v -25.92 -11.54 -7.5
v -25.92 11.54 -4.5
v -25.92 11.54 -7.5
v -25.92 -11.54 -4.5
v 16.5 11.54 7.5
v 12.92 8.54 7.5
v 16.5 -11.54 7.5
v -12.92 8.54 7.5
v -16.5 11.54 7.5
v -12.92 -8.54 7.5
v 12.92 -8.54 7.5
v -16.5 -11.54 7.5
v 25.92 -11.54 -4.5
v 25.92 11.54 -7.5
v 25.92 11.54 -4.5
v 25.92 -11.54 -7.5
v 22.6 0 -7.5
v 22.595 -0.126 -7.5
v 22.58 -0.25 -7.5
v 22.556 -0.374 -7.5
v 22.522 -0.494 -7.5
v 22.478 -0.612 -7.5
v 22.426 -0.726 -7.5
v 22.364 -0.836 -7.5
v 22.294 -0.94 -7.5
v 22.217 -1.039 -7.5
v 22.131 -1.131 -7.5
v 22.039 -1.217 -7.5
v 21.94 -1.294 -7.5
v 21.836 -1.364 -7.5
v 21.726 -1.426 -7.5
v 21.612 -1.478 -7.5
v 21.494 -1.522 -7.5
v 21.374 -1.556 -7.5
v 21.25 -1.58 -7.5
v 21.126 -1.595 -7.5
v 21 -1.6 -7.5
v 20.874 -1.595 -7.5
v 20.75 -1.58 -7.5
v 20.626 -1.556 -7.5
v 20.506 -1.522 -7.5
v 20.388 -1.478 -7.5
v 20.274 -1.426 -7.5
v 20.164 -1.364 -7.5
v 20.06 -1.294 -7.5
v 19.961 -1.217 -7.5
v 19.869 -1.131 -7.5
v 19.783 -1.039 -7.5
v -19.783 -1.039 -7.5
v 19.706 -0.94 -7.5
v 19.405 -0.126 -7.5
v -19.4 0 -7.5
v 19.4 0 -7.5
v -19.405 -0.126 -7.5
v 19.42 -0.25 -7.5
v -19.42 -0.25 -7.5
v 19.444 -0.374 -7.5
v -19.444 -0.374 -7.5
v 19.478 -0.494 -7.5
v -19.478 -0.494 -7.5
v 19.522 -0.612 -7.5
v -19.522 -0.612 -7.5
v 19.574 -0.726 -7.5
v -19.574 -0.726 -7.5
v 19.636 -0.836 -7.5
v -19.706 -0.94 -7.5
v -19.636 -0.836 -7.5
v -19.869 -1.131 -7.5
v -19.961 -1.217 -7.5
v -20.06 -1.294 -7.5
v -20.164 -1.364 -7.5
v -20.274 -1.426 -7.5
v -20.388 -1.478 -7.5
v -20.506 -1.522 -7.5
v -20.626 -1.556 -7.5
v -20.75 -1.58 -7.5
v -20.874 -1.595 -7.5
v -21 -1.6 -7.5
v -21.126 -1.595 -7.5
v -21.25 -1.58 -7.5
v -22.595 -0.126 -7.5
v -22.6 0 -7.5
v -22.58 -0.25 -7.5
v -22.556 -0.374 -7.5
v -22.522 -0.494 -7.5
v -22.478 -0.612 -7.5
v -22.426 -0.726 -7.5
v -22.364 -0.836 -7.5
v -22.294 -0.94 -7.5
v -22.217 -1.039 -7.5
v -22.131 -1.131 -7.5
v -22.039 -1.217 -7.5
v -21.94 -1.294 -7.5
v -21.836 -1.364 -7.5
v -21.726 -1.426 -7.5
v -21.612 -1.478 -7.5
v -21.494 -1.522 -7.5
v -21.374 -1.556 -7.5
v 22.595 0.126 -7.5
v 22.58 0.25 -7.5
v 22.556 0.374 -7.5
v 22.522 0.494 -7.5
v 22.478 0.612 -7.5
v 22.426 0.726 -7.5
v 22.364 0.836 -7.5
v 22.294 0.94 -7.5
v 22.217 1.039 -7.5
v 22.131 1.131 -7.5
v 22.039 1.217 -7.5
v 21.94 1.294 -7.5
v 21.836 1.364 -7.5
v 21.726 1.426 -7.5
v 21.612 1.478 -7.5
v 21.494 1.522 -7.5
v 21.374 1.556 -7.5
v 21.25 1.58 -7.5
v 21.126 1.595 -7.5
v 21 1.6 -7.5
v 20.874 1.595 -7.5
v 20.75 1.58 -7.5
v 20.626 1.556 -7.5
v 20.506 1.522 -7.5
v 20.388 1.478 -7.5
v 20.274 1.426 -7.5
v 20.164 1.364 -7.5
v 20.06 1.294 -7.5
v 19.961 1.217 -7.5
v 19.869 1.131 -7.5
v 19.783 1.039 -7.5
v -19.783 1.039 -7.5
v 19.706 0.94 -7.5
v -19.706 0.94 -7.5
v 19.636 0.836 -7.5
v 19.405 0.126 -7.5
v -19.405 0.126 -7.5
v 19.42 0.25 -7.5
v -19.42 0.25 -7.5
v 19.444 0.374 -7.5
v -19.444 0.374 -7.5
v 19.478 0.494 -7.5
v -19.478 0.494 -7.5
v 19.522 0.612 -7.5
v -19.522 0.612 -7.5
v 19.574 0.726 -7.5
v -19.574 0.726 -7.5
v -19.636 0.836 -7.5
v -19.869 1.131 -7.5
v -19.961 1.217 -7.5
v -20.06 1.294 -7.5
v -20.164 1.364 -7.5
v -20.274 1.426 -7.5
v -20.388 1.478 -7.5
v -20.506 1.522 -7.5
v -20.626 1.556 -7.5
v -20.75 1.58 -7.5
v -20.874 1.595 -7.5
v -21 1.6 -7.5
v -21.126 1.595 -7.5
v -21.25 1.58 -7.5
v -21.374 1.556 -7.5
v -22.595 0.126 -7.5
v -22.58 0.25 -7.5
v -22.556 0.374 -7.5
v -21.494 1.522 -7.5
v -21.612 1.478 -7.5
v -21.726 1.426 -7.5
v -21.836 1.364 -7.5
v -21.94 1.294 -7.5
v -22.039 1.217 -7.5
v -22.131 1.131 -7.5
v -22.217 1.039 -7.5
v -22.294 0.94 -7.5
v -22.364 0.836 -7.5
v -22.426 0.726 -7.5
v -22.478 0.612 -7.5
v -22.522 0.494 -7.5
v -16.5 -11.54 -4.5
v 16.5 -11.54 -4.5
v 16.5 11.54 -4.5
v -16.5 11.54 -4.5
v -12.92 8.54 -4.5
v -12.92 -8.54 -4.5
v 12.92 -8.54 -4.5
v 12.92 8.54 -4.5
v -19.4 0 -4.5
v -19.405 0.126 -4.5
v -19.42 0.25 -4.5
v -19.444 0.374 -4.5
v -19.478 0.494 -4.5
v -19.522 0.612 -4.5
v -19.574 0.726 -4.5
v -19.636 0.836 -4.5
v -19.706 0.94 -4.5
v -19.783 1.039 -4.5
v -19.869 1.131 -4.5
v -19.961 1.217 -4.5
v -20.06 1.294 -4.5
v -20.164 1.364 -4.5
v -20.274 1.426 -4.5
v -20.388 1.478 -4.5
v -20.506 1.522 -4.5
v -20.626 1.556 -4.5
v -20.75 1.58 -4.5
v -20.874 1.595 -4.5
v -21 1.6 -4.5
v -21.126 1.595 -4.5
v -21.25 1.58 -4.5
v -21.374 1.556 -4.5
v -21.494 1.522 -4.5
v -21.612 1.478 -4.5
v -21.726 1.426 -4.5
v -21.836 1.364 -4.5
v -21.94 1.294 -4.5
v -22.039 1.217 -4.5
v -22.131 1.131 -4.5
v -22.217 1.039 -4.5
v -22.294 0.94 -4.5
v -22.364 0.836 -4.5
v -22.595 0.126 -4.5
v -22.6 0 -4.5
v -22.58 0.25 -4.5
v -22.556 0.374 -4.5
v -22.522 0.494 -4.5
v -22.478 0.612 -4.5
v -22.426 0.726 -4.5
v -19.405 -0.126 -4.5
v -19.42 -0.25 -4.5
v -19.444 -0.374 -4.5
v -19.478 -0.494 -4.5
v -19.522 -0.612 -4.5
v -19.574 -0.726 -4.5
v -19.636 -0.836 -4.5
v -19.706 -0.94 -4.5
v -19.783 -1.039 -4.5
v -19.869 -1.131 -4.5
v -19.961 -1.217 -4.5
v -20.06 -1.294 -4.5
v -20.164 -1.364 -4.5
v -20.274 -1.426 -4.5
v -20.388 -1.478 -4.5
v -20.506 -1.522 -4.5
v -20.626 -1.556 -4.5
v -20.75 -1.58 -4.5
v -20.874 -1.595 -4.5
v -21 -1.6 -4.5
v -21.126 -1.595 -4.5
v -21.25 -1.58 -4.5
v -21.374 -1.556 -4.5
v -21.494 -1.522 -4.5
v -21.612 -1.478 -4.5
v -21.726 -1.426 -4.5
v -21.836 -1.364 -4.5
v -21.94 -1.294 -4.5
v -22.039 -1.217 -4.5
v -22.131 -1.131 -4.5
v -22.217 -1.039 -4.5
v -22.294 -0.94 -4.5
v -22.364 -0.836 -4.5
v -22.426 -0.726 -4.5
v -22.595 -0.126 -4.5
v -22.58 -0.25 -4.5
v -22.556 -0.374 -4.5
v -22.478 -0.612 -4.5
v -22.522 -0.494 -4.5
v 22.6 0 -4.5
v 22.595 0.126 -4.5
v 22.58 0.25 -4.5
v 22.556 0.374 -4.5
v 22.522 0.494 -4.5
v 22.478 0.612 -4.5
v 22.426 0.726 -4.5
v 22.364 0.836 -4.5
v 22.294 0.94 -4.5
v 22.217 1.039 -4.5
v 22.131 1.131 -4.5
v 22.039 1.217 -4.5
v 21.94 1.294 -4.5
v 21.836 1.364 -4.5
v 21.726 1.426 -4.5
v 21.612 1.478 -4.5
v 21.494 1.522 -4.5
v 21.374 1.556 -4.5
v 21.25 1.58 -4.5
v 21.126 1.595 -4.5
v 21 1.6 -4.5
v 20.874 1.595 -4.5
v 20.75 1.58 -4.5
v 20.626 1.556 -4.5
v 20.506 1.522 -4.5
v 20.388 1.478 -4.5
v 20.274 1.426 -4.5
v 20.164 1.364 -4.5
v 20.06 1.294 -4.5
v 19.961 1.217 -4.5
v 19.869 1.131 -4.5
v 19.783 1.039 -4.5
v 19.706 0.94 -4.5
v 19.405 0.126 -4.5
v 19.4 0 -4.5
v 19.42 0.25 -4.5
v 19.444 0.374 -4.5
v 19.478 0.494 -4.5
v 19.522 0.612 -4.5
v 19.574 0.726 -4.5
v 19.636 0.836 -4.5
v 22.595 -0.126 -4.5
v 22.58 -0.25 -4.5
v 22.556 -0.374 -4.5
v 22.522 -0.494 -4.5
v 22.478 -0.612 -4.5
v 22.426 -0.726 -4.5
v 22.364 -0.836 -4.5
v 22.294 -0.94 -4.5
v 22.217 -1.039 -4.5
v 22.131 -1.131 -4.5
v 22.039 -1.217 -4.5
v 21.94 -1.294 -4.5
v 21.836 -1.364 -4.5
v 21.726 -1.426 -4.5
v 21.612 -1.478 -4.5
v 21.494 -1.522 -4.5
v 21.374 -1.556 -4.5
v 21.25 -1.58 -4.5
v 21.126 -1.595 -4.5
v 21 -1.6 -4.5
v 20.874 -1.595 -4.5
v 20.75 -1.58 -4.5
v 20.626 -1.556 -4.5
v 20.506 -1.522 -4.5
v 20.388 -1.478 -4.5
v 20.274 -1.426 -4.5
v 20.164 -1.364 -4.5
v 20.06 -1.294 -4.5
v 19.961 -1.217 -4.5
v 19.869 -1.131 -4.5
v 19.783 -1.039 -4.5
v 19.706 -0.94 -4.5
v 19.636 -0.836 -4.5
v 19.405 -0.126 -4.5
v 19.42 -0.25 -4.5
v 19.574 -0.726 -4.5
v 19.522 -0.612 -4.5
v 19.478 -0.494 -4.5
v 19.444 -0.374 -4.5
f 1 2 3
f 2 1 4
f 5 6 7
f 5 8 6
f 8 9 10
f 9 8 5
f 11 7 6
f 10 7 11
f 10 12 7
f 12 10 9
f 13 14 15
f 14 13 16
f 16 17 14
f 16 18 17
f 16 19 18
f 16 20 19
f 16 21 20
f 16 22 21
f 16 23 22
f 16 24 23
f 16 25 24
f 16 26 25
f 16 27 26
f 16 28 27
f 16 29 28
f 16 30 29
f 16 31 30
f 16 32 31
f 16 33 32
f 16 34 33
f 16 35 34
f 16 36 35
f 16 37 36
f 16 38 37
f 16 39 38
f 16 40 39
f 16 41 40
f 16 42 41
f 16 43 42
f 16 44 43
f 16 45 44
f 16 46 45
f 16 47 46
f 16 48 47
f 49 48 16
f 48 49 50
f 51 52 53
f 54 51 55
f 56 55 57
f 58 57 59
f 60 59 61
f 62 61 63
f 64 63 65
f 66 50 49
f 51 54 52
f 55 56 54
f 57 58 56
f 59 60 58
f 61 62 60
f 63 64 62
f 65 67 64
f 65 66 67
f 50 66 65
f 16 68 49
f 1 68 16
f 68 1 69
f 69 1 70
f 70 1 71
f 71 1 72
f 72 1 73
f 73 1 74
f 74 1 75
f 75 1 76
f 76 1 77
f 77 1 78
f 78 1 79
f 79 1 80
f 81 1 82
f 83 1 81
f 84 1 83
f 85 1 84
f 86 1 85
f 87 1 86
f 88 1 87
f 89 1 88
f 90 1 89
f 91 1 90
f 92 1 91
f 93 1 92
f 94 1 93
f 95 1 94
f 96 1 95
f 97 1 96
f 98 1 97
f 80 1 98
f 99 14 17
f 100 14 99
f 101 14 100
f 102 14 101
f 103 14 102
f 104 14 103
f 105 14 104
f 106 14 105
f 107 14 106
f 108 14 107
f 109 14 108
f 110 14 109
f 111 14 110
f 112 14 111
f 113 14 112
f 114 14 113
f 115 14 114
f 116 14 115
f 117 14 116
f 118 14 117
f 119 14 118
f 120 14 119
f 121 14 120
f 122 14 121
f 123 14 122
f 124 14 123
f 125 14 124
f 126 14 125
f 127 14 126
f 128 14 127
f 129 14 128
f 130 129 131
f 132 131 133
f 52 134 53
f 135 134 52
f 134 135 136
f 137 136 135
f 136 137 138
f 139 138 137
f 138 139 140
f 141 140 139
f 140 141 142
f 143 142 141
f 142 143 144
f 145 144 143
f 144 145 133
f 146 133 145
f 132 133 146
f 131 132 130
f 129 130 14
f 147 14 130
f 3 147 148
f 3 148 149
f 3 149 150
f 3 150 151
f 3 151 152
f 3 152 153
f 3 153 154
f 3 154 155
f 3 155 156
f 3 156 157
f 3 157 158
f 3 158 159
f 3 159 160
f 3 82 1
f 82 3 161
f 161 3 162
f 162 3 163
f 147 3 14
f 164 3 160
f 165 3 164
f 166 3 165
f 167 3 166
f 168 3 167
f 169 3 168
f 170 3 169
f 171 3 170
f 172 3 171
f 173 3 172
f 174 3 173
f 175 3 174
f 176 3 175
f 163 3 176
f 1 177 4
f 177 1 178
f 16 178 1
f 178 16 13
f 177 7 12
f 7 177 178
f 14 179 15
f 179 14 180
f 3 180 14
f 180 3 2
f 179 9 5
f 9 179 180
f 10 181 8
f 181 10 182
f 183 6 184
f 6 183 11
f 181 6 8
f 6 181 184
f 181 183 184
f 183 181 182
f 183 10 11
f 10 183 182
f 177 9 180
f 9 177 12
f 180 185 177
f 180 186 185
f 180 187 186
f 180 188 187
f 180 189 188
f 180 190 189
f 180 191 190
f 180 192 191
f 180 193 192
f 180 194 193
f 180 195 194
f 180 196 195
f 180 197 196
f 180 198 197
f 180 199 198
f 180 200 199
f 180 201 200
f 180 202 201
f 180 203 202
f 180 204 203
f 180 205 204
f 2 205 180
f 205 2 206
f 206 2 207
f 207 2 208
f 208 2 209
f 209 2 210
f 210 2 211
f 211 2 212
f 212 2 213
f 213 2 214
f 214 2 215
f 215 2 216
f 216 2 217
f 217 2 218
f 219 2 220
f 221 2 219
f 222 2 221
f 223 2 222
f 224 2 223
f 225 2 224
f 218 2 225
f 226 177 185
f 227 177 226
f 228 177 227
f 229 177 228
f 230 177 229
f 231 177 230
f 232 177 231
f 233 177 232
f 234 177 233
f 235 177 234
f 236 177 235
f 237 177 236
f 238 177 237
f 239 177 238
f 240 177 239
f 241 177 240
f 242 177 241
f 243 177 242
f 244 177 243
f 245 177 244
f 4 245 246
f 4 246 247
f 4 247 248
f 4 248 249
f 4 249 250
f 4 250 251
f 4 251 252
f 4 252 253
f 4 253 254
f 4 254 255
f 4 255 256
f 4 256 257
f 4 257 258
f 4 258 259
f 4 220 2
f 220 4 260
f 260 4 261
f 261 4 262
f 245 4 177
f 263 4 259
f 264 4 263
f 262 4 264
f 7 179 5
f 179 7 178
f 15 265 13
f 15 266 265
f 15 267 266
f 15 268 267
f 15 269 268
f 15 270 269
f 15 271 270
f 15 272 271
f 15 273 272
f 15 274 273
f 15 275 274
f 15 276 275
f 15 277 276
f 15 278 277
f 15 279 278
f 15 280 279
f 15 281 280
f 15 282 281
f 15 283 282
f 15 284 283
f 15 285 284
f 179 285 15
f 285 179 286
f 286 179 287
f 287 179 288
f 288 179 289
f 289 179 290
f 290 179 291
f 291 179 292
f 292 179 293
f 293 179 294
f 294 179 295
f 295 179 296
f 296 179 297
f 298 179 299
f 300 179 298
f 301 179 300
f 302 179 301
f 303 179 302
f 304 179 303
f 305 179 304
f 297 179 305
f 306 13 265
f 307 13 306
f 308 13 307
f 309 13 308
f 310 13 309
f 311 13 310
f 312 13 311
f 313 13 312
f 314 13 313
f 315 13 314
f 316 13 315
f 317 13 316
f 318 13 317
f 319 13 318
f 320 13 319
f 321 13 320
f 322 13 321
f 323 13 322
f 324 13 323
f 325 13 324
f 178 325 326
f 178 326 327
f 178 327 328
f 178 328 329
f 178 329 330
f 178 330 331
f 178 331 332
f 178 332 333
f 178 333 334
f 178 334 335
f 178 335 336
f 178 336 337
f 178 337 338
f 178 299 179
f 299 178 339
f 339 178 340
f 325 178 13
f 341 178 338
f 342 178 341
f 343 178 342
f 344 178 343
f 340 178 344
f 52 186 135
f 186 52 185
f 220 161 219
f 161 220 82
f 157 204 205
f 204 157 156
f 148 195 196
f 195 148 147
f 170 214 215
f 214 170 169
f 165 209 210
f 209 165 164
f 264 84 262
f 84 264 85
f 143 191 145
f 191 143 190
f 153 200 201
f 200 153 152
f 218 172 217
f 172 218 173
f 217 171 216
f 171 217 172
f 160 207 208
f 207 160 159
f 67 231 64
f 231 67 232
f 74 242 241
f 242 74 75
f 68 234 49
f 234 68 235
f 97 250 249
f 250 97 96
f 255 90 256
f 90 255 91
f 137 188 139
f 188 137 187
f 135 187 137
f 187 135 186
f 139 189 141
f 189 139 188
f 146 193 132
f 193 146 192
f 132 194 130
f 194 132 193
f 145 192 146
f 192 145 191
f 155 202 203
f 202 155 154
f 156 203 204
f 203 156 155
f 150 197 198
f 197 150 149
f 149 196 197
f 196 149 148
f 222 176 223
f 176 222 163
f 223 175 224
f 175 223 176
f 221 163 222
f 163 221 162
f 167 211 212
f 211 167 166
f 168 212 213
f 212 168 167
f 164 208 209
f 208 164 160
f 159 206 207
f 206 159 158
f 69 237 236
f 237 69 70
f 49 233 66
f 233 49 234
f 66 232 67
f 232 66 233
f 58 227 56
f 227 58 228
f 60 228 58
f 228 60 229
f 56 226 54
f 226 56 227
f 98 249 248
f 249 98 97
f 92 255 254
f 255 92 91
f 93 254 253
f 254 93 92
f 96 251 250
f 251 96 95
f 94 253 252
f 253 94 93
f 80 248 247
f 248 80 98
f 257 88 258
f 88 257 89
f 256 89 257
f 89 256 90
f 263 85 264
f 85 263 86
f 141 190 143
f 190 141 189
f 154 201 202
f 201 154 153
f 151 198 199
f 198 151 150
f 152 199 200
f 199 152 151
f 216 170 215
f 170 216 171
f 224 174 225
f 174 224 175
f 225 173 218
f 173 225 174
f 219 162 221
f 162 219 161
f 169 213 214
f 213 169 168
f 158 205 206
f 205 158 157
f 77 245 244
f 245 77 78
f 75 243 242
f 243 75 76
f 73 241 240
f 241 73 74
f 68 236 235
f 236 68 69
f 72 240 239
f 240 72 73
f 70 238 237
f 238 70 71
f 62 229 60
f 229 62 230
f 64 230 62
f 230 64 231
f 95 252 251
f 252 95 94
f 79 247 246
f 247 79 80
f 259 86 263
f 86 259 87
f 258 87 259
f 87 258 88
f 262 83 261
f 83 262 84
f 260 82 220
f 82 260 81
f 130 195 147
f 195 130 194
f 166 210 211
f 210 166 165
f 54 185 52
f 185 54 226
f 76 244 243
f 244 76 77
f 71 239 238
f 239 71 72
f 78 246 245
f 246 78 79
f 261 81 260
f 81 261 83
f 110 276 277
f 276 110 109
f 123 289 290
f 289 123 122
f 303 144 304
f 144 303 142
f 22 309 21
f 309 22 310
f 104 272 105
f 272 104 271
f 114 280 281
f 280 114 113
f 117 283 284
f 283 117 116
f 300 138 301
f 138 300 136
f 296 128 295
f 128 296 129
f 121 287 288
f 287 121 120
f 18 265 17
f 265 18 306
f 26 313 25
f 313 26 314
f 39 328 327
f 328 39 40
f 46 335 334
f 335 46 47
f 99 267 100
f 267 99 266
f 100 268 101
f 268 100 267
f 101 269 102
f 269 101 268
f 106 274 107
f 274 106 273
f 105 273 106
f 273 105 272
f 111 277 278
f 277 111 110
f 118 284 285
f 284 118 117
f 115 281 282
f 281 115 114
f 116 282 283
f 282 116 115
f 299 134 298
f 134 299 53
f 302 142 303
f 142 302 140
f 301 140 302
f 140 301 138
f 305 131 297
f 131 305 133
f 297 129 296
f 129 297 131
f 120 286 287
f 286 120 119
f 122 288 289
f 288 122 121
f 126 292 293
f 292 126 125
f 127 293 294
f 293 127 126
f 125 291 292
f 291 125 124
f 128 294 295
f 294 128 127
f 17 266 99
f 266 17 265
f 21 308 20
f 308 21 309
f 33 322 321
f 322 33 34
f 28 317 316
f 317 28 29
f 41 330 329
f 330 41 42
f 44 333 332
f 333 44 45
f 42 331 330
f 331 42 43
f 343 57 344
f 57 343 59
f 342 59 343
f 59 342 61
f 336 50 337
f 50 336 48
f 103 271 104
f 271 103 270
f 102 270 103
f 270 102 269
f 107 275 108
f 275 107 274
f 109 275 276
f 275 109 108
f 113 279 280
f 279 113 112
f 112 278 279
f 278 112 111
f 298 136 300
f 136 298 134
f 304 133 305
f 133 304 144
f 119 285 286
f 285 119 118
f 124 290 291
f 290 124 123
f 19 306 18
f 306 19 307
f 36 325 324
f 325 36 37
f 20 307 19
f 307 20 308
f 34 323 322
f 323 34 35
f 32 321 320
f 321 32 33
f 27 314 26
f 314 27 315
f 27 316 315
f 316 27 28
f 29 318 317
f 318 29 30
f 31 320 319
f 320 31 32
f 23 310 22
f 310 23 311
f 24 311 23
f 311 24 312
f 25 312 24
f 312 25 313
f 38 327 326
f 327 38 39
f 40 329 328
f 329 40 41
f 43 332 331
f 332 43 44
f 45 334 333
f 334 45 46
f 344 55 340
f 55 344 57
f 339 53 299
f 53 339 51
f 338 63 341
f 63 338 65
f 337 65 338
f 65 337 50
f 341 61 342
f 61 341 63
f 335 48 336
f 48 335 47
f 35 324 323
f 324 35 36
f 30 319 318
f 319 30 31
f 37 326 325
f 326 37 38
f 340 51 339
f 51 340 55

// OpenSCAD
difference() {

cube([51.84,23.08,15], center=true);
   translate([0,0,3]) cube([25.84,17.08,15], center=true);
    translate([-21.5,0,3]) cube([10,24,15], center=true);
    translate([21.5,0,3]) cube([10,24,15], center=true);
    translate([-21,0,-3]) cylinder(r= 1.6, h=10, center=true,$fn=80);
    translate([21,0,-3]) cylinder(r=1.6, h=10, center=true, $fn=80);
   
    
}
